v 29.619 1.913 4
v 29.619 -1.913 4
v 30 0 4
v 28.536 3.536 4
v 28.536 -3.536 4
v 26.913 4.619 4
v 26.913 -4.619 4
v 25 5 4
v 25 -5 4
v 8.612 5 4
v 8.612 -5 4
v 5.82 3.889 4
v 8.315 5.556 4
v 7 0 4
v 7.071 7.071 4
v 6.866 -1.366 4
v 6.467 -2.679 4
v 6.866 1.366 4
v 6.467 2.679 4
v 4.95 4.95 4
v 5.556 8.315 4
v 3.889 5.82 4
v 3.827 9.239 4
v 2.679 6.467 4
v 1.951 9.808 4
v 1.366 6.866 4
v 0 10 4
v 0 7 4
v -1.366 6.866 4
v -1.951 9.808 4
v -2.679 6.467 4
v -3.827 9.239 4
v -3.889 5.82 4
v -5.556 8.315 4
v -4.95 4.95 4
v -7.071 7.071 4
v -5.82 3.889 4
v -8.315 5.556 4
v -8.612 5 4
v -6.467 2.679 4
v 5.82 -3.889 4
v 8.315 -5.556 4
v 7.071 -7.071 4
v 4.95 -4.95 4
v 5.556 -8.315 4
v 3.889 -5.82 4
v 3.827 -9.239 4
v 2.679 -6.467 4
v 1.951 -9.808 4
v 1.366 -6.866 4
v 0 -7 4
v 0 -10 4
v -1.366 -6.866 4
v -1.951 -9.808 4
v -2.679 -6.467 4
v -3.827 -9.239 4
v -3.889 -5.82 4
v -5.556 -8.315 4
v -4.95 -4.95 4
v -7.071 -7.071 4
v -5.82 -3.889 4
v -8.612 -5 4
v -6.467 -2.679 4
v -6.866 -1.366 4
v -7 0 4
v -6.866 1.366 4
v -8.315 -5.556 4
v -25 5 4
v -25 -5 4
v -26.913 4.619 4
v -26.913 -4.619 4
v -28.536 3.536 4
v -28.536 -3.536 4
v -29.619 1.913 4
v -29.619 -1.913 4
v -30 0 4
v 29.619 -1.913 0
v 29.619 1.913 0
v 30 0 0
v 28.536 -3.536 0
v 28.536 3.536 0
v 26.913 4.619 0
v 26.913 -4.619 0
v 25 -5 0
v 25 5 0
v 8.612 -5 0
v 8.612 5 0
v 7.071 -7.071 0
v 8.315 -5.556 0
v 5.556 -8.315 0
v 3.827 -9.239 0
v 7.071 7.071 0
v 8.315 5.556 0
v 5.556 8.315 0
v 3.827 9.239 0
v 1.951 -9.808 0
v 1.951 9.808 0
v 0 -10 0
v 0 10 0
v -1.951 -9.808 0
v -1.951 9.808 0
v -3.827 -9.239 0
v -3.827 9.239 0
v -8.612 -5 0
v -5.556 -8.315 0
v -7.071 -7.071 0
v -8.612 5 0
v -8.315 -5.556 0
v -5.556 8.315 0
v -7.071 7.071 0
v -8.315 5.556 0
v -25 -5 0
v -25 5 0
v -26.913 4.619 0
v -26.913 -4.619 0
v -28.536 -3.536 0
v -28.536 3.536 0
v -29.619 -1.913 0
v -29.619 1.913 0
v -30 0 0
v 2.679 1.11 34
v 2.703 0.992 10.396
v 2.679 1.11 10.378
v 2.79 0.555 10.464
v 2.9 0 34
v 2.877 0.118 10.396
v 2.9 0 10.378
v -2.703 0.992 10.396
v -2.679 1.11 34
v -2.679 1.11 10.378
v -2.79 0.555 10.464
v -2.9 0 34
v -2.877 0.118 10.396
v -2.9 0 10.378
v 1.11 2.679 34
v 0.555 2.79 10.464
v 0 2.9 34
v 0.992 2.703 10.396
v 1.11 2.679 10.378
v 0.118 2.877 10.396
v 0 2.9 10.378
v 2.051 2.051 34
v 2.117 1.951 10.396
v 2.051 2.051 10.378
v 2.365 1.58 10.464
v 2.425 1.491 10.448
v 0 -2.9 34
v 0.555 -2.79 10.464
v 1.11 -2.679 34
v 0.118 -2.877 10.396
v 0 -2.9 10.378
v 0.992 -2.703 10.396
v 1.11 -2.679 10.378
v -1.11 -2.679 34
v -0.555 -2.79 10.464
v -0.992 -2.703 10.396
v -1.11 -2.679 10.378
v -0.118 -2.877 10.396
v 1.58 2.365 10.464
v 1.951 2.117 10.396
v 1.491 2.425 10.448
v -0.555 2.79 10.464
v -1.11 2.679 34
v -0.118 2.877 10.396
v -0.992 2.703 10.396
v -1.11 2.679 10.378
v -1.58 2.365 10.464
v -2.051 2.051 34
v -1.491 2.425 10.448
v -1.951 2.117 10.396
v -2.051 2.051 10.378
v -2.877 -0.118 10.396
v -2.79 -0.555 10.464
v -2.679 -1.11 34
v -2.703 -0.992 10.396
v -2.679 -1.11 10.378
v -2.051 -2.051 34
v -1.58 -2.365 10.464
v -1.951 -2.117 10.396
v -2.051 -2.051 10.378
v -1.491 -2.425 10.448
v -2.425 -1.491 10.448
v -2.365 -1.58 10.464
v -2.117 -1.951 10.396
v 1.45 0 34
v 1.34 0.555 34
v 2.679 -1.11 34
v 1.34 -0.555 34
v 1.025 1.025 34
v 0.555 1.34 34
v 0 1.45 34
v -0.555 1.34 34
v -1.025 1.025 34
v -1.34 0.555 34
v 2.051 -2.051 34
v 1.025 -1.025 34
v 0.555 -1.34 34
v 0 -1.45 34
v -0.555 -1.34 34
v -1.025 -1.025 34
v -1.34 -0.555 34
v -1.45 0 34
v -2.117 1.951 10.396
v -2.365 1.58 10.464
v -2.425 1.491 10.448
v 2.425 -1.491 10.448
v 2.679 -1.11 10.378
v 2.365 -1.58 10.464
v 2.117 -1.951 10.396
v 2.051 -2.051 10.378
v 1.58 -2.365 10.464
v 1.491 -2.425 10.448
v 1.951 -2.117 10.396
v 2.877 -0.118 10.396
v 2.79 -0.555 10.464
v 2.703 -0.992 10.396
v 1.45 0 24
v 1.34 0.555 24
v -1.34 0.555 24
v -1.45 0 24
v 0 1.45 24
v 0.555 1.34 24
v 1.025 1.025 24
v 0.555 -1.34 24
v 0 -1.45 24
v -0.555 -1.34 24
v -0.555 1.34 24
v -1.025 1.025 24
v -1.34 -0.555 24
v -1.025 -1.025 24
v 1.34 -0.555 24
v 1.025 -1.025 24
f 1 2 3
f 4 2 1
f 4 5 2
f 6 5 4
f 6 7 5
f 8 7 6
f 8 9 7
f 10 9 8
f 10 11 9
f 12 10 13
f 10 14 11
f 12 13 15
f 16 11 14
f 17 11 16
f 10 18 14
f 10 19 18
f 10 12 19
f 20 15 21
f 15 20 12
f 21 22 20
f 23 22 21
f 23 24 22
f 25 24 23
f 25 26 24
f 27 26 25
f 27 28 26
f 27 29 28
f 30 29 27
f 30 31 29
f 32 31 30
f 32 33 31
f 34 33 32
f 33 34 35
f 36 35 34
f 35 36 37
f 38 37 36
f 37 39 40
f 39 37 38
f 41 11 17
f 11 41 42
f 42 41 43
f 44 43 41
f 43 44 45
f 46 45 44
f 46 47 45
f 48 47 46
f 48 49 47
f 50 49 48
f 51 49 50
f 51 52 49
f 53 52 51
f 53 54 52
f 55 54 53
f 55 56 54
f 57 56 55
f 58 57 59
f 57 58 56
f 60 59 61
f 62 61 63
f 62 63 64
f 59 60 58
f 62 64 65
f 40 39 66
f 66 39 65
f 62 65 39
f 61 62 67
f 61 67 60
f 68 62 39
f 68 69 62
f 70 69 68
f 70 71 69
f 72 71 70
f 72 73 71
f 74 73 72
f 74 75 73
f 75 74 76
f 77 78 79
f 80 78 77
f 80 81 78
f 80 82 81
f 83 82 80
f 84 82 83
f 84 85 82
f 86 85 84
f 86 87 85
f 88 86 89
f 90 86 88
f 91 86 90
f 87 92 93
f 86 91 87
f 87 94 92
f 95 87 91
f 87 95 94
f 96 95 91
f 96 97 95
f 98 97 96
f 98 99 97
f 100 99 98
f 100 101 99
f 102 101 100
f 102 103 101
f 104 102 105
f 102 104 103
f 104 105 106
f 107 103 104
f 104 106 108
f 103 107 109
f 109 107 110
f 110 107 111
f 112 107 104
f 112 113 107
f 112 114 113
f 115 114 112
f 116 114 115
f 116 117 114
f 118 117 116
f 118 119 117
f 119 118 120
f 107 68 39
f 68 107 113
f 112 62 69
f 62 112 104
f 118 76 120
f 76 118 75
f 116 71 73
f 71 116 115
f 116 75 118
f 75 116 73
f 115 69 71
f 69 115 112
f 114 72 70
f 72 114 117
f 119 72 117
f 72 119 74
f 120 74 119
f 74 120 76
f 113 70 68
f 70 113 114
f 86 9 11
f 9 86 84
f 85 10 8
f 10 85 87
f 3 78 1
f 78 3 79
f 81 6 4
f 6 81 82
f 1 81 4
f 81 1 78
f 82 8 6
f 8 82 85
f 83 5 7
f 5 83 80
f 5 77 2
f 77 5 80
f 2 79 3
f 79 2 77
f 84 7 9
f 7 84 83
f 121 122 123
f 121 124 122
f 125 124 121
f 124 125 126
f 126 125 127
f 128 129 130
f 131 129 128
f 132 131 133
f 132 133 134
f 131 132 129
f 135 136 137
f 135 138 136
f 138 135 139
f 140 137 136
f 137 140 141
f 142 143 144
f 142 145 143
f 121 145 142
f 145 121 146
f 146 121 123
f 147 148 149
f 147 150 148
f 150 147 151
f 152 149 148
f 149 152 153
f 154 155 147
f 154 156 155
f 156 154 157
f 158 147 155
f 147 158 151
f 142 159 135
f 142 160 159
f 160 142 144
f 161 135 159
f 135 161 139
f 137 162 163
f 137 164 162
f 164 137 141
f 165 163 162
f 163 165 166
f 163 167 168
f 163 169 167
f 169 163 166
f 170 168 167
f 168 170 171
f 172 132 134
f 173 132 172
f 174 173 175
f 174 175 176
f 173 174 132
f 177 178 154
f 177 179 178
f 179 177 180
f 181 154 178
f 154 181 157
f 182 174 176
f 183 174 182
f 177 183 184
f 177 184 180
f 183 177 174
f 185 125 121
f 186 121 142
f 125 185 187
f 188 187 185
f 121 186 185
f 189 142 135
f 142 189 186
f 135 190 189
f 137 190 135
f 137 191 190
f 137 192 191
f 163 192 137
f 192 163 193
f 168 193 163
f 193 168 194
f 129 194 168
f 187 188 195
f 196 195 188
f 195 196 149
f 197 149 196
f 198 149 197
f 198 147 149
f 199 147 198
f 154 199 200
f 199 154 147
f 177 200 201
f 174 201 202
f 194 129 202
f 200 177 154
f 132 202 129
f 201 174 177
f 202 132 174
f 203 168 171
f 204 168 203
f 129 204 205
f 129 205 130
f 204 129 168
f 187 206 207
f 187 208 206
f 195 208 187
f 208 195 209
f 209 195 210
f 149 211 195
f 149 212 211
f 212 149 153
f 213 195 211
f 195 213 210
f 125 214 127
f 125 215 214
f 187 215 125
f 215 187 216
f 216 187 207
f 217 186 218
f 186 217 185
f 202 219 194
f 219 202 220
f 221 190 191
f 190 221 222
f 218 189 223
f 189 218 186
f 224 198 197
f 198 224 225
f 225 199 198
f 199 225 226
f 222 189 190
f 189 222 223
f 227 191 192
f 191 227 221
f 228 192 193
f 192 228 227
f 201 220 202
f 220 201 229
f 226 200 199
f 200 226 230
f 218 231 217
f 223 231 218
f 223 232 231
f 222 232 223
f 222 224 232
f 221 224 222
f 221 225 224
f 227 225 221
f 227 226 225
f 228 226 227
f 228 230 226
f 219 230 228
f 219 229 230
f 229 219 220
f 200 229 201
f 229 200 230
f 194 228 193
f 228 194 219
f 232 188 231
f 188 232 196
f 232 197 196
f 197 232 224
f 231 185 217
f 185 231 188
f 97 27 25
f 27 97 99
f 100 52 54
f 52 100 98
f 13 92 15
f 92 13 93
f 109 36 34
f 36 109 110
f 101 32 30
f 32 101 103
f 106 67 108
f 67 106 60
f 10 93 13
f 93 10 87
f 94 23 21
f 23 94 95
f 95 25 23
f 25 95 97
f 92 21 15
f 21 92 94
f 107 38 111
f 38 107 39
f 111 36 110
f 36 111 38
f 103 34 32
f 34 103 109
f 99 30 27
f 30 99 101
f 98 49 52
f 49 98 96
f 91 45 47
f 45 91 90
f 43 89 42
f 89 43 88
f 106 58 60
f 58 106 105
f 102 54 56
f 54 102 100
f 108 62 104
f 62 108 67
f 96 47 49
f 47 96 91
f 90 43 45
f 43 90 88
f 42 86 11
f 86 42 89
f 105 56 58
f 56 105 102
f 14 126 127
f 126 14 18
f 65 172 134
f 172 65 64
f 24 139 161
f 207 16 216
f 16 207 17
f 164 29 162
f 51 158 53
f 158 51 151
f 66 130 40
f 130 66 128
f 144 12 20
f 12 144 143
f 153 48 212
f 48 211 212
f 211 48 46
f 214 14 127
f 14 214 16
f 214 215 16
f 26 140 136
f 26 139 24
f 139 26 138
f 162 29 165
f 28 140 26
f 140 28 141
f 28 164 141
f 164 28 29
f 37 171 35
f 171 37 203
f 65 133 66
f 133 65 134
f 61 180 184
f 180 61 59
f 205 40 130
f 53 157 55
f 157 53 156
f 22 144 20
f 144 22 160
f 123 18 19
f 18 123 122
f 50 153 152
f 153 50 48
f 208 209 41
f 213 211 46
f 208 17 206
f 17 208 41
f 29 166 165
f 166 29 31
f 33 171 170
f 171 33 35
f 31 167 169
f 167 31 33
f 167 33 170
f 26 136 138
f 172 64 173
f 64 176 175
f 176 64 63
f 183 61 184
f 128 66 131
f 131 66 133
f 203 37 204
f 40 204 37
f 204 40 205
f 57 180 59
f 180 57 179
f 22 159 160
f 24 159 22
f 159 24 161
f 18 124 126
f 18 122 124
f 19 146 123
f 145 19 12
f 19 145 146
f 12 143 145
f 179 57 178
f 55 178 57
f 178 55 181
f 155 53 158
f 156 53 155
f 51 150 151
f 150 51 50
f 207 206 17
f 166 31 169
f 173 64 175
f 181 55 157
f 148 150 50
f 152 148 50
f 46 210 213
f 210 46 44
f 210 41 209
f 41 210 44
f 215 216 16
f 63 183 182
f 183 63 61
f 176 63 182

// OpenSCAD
BASE_HEIGHT = 4;
BASE_RADIUS = 10;

AXLE_HOLE_RADIUS = 1.45;
AXLE_HOLE_HEIGHT = 10;
AXLE_HEIGHT = 30;

WING_LENGTH = 25;
WING_WIDTH = 10;

NUM_OF_WINGS = 2;

module wing() {
    translate([0,WING_WIDTH/-2,0]) cube([WING_LENGTH,WING_WIDTH,BASE_HEIGHT]);
    translate([WING_LENGTH,0,0]) cylinder(r=WING_WIDTH/2, h=BASE_HEIGHT);
}

translate([0,0,BASE_HEIGHT]) difference() {
    cylinder(r=AXLE_HOLE_RADIUS*2, h=AXLE_HEIGHT, $fn=16);
    translate([0,0,AXLE_HEIGHT-AXLE_HOLE_HEIGHT])
        cylinder(r=AXLE_HOLE_RADIUS, h=AXLE_HOLE_HEIGHT, $fn=16);
}
cylinder(r=BASE_RADIUS, h=BASE_HEIGHT, $fn=32);
translate([0,0,BASE_HEIGHT])
    cylinder(r1=BASE_RADIUS*.7, r2=BASE_RADIUS*.25, h=BASE_RADIUS*.7, $fn=32);

if (NUM_OF_WINGS > 0) {
    wing_rotation = 360 / NUM_OF_WINGS;
    for(n = [1:NUM_OF_WINGS]) {
        rotate([0,0,wing_rotation*n]) wing();
    }
}
